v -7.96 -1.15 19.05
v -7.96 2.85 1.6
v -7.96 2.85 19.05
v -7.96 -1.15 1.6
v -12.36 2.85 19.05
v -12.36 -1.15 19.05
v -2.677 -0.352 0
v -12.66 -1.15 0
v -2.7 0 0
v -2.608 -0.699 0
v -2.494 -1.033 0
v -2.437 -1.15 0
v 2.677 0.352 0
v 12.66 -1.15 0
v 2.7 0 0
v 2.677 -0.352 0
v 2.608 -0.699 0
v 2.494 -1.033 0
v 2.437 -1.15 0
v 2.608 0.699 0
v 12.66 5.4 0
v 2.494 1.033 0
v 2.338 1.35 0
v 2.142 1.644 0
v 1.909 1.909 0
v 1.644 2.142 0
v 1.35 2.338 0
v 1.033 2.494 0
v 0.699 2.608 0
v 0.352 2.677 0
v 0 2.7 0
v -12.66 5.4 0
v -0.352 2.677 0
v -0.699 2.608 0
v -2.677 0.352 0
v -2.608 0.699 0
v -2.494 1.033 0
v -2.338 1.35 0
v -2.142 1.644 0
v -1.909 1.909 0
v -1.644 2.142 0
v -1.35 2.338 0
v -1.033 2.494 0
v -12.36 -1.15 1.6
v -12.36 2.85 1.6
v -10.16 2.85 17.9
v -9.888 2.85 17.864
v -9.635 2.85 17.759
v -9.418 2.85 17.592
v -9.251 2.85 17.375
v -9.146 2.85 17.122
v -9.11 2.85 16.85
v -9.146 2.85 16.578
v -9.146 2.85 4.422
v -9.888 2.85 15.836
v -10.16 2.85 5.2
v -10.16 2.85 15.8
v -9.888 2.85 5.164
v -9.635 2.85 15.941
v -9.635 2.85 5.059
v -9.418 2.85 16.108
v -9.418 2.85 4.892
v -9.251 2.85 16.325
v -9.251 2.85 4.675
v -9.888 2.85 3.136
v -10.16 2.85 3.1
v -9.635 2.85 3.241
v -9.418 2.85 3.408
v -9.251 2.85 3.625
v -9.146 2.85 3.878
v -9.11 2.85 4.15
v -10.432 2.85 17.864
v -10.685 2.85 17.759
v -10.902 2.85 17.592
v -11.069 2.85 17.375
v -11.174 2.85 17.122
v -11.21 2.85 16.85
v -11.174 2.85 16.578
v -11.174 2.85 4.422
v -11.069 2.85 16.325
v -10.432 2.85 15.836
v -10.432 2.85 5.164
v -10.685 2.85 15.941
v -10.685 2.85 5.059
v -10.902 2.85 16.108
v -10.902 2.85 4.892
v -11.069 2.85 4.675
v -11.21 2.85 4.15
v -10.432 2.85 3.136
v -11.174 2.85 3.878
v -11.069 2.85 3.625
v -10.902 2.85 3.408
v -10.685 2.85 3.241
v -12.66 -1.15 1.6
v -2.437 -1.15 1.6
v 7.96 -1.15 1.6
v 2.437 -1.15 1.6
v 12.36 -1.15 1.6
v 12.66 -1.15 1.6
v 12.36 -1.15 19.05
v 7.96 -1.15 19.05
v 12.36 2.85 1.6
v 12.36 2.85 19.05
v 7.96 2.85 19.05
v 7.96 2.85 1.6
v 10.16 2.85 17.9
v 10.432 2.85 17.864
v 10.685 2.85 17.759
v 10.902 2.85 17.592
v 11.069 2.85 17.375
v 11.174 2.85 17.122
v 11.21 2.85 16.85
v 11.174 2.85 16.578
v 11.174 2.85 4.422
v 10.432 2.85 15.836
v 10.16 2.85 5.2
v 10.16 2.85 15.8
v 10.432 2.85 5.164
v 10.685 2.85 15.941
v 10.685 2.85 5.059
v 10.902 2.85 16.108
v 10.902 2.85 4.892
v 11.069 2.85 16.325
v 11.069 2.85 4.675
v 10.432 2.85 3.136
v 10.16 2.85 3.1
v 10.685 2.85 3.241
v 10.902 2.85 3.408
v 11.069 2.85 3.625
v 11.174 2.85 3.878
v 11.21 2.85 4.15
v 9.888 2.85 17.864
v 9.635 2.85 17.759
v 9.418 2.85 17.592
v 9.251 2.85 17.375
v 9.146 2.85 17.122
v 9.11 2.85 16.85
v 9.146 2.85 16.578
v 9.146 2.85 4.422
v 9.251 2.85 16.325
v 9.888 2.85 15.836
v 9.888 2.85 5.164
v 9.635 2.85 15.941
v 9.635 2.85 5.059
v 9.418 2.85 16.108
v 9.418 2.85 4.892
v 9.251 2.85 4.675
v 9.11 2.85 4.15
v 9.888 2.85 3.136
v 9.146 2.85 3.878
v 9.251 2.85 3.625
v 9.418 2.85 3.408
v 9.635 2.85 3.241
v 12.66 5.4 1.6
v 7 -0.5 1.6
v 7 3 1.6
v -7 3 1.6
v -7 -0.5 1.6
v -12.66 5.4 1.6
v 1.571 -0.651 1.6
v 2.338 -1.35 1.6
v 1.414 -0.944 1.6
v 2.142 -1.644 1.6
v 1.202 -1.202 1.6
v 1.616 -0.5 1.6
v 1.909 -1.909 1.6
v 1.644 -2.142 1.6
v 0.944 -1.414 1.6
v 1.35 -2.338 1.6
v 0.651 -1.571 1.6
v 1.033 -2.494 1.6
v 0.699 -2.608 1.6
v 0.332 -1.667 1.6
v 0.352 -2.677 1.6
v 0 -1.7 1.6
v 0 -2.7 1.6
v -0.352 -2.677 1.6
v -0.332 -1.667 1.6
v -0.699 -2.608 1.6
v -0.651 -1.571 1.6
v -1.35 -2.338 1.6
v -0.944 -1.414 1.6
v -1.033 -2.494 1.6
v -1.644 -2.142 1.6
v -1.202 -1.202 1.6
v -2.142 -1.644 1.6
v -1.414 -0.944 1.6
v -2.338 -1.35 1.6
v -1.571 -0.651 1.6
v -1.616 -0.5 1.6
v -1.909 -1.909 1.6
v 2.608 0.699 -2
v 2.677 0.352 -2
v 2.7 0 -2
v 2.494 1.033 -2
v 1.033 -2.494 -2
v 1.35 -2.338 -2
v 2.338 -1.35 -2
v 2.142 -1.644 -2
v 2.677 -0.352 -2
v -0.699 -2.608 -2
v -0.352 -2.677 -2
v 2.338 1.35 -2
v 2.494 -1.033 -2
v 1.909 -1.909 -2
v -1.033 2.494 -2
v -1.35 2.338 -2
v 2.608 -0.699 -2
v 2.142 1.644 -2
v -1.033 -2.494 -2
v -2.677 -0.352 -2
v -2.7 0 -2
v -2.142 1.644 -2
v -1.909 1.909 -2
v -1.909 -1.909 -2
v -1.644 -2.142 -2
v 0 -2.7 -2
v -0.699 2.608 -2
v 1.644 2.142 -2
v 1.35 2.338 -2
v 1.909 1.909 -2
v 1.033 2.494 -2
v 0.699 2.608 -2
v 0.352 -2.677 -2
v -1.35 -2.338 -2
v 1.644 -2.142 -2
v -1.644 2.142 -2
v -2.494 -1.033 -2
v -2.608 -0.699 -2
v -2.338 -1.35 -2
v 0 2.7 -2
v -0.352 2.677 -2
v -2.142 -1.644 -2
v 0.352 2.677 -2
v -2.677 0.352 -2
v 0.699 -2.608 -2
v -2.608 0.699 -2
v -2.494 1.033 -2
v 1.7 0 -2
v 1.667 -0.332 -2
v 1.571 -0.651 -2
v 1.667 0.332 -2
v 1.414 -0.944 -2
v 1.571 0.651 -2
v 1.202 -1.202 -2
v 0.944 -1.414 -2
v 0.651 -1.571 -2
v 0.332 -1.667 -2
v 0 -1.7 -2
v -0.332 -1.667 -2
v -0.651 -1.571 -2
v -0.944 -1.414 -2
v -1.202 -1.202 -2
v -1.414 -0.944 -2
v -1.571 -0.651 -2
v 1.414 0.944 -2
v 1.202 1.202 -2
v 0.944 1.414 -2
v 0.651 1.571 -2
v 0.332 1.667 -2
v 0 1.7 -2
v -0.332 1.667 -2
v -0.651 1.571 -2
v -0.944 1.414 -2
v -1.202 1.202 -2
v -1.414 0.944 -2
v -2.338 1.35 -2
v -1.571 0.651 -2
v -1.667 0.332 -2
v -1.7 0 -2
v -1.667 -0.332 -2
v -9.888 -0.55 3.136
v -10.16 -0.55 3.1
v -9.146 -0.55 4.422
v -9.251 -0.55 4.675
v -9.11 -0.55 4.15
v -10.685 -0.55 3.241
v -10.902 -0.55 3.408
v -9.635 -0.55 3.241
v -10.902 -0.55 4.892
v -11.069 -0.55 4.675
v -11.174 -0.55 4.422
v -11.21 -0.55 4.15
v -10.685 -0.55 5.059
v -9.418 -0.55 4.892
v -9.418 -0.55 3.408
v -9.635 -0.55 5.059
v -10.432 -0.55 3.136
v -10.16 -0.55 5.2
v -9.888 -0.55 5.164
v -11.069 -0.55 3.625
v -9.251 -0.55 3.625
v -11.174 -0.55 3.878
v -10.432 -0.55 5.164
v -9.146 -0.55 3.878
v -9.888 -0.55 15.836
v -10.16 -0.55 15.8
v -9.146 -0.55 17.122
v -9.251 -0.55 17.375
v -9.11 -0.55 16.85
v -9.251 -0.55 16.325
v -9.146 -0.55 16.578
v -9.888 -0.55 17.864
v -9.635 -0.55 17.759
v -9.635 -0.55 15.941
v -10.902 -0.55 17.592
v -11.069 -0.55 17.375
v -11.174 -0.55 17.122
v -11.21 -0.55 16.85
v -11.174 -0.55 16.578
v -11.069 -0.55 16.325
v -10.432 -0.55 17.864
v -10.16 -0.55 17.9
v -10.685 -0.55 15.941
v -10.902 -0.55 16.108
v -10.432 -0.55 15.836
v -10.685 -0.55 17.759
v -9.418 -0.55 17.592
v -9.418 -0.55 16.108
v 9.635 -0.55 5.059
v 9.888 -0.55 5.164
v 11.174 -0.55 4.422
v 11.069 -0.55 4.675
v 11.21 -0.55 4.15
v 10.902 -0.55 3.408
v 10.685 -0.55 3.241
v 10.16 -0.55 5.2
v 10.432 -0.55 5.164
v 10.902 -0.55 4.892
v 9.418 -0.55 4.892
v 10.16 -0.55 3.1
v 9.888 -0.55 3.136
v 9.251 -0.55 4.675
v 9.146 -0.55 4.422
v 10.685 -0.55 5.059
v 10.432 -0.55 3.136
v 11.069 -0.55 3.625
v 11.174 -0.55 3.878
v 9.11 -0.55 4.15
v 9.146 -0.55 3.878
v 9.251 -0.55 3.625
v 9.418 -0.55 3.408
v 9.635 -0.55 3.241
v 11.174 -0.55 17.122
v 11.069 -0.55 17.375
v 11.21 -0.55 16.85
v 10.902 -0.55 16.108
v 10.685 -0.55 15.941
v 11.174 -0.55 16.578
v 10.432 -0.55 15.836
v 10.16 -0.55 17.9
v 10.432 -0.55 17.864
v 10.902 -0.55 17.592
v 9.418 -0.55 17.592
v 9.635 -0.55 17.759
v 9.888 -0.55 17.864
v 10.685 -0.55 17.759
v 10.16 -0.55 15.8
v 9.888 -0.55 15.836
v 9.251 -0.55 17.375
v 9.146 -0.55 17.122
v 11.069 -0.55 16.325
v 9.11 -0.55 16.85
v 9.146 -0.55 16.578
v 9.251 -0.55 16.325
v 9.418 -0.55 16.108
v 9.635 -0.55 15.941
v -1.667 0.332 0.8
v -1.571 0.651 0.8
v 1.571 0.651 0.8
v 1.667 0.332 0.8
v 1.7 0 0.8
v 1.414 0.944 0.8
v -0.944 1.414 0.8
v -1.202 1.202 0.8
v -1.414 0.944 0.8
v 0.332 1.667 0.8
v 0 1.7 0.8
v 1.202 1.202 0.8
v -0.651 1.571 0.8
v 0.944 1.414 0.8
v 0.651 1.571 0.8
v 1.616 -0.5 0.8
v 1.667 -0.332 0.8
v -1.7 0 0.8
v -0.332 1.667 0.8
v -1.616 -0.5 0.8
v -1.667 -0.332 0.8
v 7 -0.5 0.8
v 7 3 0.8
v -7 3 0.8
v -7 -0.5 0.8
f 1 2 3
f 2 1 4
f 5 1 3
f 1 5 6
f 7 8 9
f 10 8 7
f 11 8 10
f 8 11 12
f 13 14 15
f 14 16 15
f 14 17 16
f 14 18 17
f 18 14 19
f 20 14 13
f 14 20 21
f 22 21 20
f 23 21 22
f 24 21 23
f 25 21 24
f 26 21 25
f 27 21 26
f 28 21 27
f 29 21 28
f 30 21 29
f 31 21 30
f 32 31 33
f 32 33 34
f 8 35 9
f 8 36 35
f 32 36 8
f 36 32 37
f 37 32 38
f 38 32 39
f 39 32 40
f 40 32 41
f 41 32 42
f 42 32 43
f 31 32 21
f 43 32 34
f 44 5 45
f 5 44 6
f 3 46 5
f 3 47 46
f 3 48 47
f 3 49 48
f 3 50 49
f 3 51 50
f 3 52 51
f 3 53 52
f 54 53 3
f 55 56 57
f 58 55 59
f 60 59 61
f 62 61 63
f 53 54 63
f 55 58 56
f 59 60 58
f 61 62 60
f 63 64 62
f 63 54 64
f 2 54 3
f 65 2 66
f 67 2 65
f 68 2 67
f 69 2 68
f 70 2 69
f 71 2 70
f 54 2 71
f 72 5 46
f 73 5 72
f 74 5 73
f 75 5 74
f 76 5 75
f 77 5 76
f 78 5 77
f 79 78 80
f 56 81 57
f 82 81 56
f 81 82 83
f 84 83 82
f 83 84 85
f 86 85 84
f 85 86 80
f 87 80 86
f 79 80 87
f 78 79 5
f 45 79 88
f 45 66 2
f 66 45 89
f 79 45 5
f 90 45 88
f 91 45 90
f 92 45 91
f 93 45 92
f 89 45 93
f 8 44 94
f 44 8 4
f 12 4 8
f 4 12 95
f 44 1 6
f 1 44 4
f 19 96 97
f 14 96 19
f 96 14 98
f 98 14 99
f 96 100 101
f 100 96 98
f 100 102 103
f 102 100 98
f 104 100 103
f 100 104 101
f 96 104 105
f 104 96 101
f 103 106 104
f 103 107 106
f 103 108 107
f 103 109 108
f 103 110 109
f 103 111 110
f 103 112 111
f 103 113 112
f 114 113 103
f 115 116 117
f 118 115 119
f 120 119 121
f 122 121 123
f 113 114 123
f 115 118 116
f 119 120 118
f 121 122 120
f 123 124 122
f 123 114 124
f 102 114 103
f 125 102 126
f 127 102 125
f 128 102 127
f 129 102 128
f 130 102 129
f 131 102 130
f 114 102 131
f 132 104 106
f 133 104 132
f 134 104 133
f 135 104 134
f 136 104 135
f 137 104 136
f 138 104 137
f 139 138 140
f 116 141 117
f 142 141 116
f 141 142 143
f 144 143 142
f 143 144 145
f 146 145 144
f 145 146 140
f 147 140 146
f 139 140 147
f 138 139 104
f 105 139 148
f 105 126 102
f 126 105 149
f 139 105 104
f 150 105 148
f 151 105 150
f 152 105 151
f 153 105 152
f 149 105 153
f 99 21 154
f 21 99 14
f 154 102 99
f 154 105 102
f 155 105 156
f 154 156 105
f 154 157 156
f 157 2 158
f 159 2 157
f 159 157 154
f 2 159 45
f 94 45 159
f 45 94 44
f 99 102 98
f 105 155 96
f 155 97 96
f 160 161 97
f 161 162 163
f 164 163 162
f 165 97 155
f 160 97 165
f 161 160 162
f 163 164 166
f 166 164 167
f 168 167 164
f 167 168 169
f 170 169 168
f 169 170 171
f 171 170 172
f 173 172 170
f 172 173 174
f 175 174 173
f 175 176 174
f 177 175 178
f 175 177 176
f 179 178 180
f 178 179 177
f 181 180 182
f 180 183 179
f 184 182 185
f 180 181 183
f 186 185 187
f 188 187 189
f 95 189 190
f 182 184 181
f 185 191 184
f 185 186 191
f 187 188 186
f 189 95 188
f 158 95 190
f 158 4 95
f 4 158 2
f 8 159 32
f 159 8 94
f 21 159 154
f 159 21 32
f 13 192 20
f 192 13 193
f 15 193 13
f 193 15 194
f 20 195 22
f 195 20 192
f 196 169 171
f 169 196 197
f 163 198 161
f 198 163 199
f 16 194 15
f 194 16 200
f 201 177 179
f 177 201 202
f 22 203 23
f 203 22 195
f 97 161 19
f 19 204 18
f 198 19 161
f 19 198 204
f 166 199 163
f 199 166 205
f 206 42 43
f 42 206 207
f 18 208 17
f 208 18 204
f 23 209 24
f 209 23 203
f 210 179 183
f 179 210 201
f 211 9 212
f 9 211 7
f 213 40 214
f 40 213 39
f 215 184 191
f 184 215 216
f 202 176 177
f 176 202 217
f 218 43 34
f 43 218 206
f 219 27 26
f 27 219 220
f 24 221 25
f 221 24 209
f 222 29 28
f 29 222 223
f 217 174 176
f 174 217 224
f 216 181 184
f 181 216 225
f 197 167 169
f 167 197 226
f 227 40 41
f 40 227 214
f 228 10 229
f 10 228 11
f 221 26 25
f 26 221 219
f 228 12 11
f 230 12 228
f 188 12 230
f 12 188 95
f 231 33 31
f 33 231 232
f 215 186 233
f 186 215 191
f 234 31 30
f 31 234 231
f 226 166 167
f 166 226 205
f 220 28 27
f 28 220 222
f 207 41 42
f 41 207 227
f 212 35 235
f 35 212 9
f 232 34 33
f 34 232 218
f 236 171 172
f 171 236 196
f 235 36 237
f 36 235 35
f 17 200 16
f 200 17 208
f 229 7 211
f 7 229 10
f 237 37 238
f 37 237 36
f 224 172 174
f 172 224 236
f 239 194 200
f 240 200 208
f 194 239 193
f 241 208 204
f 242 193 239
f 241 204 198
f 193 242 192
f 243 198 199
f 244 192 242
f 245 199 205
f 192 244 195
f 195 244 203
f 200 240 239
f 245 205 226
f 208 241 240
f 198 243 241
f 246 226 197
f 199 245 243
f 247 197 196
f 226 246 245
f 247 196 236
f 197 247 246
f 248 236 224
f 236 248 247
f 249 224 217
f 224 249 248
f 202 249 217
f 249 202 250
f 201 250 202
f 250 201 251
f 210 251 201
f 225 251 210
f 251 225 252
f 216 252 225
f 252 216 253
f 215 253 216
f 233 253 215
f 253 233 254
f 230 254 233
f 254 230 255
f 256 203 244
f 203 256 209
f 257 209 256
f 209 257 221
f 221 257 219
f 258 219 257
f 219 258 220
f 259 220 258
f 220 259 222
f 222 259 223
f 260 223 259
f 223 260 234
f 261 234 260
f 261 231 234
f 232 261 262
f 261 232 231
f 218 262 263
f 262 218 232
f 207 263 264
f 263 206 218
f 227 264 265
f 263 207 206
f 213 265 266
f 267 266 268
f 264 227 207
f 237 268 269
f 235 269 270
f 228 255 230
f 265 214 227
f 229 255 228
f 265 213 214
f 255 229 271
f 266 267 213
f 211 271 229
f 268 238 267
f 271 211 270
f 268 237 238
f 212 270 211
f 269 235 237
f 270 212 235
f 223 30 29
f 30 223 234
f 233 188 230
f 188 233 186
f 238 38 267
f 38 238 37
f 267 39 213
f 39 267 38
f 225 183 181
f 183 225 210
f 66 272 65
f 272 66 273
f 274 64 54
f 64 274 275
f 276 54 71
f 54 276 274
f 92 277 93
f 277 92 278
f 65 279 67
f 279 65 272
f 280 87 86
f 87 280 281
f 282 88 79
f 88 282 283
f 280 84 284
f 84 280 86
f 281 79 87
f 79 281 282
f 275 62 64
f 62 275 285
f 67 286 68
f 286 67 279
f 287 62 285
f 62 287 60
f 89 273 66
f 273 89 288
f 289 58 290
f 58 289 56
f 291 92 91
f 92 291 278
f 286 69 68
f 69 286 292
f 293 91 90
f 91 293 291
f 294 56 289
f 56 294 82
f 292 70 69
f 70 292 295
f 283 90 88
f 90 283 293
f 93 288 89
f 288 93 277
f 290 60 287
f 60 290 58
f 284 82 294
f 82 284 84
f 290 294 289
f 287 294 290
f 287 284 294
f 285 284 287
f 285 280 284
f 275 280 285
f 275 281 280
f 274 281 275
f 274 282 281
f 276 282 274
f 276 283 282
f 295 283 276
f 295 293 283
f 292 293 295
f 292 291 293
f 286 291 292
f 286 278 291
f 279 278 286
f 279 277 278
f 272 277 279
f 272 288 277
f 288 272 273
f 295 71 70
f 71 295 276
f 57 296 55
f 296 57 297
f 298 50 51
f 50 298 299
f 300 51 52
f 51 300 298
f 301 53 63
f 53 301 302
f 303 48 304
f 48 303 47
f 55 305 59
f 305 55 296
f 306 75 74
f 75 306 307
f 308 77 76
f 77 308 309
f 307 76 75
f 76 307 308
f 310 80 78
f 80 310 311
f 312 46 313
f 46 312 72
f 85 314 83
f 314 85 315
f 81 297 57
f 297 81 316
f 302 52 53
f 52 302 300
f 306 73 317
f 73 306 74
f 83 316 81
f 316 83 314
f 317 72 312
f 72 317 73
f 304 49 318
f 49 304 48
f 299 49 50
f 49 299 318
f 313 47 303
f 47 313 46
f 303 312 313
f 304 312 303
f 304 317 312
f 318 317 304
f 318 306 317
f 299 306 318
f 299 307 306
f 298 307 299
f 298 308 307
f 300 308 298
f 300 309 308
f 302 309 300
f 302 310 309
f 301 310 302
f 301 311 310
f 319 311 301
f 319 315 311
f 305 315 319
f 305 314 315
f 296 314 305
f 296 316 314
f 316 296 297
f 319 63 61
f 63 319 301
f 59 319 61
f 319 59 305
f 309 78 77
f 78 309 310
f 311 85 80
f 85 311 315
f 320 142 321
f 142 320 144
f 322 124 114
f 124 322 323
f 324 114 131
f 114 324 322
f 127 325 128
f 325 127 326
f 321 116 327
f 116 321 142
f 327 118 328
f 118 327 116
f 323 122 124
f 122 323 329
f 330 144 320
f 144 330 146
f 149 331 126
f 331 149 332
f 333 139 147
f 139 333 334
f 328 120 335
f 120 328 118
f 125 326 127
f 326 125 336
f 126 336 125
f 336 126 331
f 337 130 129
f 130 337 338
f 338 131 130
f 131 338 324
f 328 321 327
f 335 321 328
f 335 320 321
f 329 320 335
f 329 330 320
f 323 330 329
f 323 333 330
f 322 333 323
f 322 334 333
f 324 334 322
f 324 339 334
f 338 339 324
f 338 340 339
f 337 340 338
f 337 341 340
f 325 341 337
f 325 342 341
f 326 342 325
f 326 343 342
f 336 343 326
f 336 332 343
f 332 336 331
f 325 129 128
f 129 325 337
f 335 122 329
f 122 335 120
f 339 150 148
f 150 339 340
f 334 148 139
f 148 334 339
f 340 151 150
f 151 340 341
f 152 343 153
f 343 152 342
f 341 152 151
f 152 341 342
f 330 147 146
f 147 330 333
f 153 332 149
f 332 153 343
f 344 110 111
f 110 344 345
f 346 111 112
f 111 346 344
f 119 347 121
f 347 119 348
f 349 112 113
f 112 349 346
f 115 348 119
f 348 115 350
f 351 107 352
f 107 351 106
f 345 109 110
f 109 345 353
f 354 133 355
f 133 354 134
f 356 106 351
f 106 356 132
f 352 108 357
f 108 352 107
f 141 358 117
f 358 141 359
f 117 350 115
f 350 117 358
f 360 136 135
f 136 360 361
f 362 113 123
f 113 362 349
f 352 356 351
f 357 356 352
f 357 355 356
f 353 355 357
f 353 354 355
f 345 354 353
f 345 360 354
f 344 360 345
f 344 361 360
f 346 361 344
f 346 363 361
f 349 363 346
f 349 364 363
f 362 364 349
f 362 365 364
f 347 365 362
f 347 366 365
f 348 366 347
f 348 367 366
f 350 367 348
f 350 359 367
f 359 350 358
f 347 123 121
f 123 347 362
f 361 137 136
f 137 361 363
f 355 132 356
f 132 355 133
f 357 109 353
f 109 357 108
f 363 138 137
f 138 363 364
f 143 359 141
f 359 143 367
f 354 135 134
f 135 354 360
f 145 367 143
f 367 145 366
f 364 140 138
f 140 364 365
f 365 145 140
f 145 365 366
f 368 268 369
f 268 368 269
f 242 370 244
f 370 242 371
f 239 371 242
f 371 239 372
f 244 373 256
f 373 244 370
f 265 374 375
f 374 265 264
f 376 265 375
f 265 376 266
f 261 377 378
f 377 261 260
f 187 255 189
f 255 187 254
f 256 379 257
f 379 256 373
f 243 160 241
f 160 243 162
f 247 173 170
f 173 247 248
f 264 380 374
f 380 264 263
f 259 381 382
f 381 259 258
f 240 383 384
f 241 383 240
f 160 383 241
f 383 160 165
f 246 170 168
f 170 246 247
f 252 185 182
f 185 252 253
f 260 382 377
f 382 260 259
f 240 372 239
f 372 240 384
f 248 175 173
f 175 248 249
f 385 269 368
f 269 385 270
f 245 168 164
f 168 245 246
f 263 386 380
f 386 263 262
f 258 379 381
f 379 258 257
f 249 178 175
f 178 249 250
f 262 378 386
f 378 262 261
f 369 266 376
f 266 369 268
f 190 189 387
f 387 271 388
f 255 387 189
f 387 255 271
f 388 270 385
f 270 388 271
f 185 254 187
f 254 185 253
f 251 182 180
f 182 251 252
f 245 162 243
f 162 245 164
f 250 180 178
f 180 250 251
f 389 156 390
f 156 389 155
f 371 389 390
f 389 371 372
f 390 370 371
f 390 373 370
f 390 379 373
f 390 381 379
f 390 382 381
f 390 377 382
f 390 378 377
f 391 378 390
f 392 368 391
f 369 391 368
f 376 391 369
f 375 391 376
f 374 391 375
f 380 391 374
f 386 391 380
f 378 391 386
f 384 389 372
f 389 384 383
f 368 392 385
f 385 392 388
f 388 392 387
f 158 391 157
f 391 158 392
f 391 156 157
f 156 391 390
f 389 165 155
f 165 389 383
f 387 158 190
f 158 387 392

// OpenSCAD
// file: soporte_tof.scad
vista = "pieza";

tof_largo = 25;
tof_cuerpo_largo = 16;
tof_ancho = 10.5;
tof_espesor = 5.5;
tof_pcb = 1.6;
tof_oreja_largo = (tof_largo - tof_cuerpo_largo) / 2;
tof_oreja_ancho = 6;
tof_oreja_alto = 6;
tof_sensor_largo = 5;
tof_sensor_ancho = 4;
tof_sensor_alto = 1.1;
tof_sensor_desde_borde = 6;
tof_oreja_tornillo_d = 2.2;

hueco_x = 10.5;
hueco_y = 5.7;
grosor_tapa = 2;
z_tapa_sup = 46.9;
tapa_ancho = 86.4;
tapa_largo = 67.2;
tapa_z0 = 40.15;

hol = 0.25;
pared_s = 0.8;
base_s = 1.6;
base_centro_largo = 16;
poste_ancho = 4.4;
poste_prof = 4;
tornillo_d = 2.2;
piloto_d = 1.7;
boss_d = 5.4;
boss_h = grosor_tapa;
cable_d = 3.4;

x_huecos = [-33, -6, 21];
y_frente = 27.89;
y_atras = -15.67;

// [x_hueco, y_hueco, dx, rumbo]: 0 = mira a +y, positivo = gira a la izquierda
// orden: AI, AC, AD, BI, BC, BD (cada cara es la otra girada 180 grados)
psi = 20;
soportes = [
	[x_huecos[0], y_frente, 0, psi],
	[x_huecos[1], y_frente, 0, 0],
	[x_huecos[2], y_frente, 0, -psi],
	[x_huecos[2], y_atras, 0, 180 + psi],
	[x_huecos[1], y_atras, 0, 180],
	[x_huecos[0], y_atras, 0, 180 - psi]
];

module tof_modelo() {
	x0 = (tof_largo - tof_cuerpo_largo) / 2;
	color([0.1, 0.35, 0.6]) {
		translate([x0, 0, 0])
			cube([tof_cuerpo_largo, tof_ancho, tof_pcb]);
		for (sx = [0, 1])
			difference() {
				translate([sx ? x0 + tof_cuerpo_largo : 0, (tof_ancho - tof_oreja_ancho) / 2, 0])
					cube([tof_oreja_largo, tof_oreja_ancho, tof_pcb]);
				translate([sx ? tof_largo - tof_oreja_largo / 2 : tof_oreja_largo / 2, tof_ancho / 2, -1])
					cylinder(d=tof_oreja_tornillo_d, h=tof_pcb + 2, $fn=24);
			}
	}
	color([0.15, 0.15, 0.15])
		translate([x0 + tof_sensor_desde_borde, (tof_ancho - tof_sensor_ancho) / 2, tof_pcb])
			cube([tof_sensor_largo, tof_sensor_ancho, tof_espesor - tof_pcb]);
}

module tof_en_pie() {
	rotate([90, 0, 180])
		translate([-tof_largo / 2, -tof_ancho / 2, -tof_espesor / 2])
			tof_modelo();
}

module soporte_tof(fijo = false) {
	T = tof_espesor + hol;
	y_poste = -T / 2;
	x_oreja = tof_cuerpo_largo / 2 + tof_oreja_largo / 2;
	z_tornillo = base_s + tof_ancho / 2;
	alto_poste = z_tornillo + poste_ancho / 2;
	x_poste = x_oreja + poste_ancho / 2;
	z_ini = fijo ? -0.1 : 0;

	difference() {
		union() {
			translate([-base_centro_largo / 2, y_poste, z_ini])
				cube([base_centro_largo, T, base_s - z_ini]);
			translate([-x_poste, y_poste - poste_prof, z_ini])
				cube([2 * x_poste, poste_prof, base_s - z_ini]);
			for (sx = [-1, 1])
				translate([sx * x_oreja - poste_ancho / 2, y_poste - poste_prof, 0])
					cube([poste_ancho, poste_prof, alto_poste]);
			if (!fijo)
				translate([0, 0, -boss_h])
					cylinder(d=boss_d, h=boss_h + base_s, $fn=48);
		}
		if (!fijo)
			translate([0, 0, -boss_h - 1])
				cylinder(d=cable_d, h=boss_h + base_s + 2, $fn=32);
		translate([-6, y_poste - 0.1, base_s - 0.8])
			cube([12, 3, 1]);
		for (sx = [-1, 1])
			translate([sx * x_oreja, y_poste + 1, z_tornillo])
				rotate([90, 0, 0])
					cylinder(d=piloto_d, h=poste_prof - 0.6 + 1, $fn=24);
	}
}

module soporte_colocado(s, fijo = false) {
	translate([s[0] + s[2], s[1], z_tapa_sup])
		rotate([0, 0, s[3]])
			soporte_tof(fijo);
}

module tof_colocado(s) {
	translate([s[0] + s[2], s[1], z_tapa_sup + base_s + tof_ancho / 2])
		rotate([0, 0, s[3]])
			tof_en_pie();
}

if (is_undef(ensamble) && vista == "pieza")
	soporte_tof(false);
// main file
include <soporte_tof.scad>

vista = "ada_pieza";

ada_largo = 25.4;
ada_alto = 17.8;
ada_pcb = 1.6;
ada_comp = 2.9;
ada_agujero_d = 2.5;
ada_agujero_dx = 20.32;
ada_agujero_dz = 12.7;
ada_chip_x = 0;
ada_chip_z = 8.9;
ada_chip_ancho = 2.5;
ada_chip_alto = 4.9;
ada_chip_espesor = 1.56;
ada_conector_largo = 4.25;
ada_conector_alto = 6.9;
ada_piloto_d = 2.1;
ada_poste_ancho = 4.4;
ada_poste_prof = 4;
ada_ranura_ancho = 14;

idx_ada = 4;

module ada_modelo() {
	color([0.1, 0.35, 0.6])
		difference() {
			cube([ada_largo, ada_alto, ada_pcb]);
			for (sx = [-1, 1], sz = [-1, 1])
				translate([ada_largo / 2 + sx * ada_agujero_dx / 2, ada_alto / 2 + sz * ada_agujero_dz / 2, -1])
					cylinder(d=ada_agujero_d, h=ada_pcb + 2, $fn=24);
		}
	color([0.15, 0.15, 0.15])
		translate([ada_largo / 2 + ada_chip_x - ada_chip_ancho / 2, ada_chip_z - ada_chip_alto / 2, ada_pcb])
			cube([ada_chip_ancho, ada_chip_alto, ada_chip_espesor]);
	color([0.85, 0.85, 0.85])
		for (x = [0, ada_largo - ada_conector_largo])
			translate([x, (ada_alto - ada_conector_alto) / 2, ada_pcb])
				cube([ada_conector_largo, ada_conector_alto, ada_comp]);
}

function ada_y_placa() = boss_d / 2 + 0.3;

module ada_en_pie() {
	translate([0, ada_y_placa(), base_s + ada_alto / 2])
		rotate([90, 0, 180])
			translate([-ada_largo / 2, -ada_alto / 2, 0])
				ada_modelo();
}

module soporte_ada(fijo = false) {
	yb = ada_y_placa();
	yp = yb - 0.15;
	x_h = ada_agujero_dx / 2;
	z_h = [(ada_alto - ada_agujero_dz) / 2, (ada_alto + ada_agujero_dz) / 2];
	alto_poste = base_s + z_h[1] + ada_poste_ancho / 2;
	x_placa = x_h + ada_poste_ancho / 2 + 0.3;
	y_atras = yp - ada_poste_prof;
	y_frente = yb + ada_pcb + 0.8;
	z_ini = fijo ? -0.1 : 0;

	difference() {
		union() {
			translate([-x_placa, y_atras, z_ini])
				cube([2 * x_placa, y_frente - y_atras, base_s - z_ini]);
			for (sx = [-1, 1])
				translate([sx * x_h - ada_poste_ancho / 2, y_atras, 0])
					cube([ada_poste_ancho, ada_poste_prof, alto_poste]);
			if (!fijo)
				translate([0, 0, -boss_h])
					cylinder(d=boss_d, h=boss_h + base_s, $fn=48);
		}
		if (!fijo)
			translate([0, 0, -boss_h - 1])
				cylinder(d=cable_d, h=boss_h + base_s + 2, $fn=32);
		translate([-ada_ranura_ancho / 2, -0.5, base_s - 0.8])
			cube([ada_ranura_ancho, yb + 0.5, 1]);
		for (sx = [-1, 1], zh = z_h)
			translate([sx * x_h, yp + 1, base_s + zh])
				rotate([90, 0, 0])
					cylinder(d=ada_piloto_d, h=ada_poste_prof - 0.6 + 1, $fn=24);
	}
}

module ada_colocado(s, fijo = false) {
	translate([s[0] + s[2], s[1], z_tapa_sup])
		rotate([0, 0, s[3]])
			soporte_ada(fijo);
}

module ada_placa_colocada(s) {
	translate([s[0] + s[2], s[1], z_tapa_sup])
		rotate([0, 0, s[3]])
			ada_en_pie();
}

if (is_undef(ensamble) && vista == "ada_pieza")
	soporte_ada(false);
